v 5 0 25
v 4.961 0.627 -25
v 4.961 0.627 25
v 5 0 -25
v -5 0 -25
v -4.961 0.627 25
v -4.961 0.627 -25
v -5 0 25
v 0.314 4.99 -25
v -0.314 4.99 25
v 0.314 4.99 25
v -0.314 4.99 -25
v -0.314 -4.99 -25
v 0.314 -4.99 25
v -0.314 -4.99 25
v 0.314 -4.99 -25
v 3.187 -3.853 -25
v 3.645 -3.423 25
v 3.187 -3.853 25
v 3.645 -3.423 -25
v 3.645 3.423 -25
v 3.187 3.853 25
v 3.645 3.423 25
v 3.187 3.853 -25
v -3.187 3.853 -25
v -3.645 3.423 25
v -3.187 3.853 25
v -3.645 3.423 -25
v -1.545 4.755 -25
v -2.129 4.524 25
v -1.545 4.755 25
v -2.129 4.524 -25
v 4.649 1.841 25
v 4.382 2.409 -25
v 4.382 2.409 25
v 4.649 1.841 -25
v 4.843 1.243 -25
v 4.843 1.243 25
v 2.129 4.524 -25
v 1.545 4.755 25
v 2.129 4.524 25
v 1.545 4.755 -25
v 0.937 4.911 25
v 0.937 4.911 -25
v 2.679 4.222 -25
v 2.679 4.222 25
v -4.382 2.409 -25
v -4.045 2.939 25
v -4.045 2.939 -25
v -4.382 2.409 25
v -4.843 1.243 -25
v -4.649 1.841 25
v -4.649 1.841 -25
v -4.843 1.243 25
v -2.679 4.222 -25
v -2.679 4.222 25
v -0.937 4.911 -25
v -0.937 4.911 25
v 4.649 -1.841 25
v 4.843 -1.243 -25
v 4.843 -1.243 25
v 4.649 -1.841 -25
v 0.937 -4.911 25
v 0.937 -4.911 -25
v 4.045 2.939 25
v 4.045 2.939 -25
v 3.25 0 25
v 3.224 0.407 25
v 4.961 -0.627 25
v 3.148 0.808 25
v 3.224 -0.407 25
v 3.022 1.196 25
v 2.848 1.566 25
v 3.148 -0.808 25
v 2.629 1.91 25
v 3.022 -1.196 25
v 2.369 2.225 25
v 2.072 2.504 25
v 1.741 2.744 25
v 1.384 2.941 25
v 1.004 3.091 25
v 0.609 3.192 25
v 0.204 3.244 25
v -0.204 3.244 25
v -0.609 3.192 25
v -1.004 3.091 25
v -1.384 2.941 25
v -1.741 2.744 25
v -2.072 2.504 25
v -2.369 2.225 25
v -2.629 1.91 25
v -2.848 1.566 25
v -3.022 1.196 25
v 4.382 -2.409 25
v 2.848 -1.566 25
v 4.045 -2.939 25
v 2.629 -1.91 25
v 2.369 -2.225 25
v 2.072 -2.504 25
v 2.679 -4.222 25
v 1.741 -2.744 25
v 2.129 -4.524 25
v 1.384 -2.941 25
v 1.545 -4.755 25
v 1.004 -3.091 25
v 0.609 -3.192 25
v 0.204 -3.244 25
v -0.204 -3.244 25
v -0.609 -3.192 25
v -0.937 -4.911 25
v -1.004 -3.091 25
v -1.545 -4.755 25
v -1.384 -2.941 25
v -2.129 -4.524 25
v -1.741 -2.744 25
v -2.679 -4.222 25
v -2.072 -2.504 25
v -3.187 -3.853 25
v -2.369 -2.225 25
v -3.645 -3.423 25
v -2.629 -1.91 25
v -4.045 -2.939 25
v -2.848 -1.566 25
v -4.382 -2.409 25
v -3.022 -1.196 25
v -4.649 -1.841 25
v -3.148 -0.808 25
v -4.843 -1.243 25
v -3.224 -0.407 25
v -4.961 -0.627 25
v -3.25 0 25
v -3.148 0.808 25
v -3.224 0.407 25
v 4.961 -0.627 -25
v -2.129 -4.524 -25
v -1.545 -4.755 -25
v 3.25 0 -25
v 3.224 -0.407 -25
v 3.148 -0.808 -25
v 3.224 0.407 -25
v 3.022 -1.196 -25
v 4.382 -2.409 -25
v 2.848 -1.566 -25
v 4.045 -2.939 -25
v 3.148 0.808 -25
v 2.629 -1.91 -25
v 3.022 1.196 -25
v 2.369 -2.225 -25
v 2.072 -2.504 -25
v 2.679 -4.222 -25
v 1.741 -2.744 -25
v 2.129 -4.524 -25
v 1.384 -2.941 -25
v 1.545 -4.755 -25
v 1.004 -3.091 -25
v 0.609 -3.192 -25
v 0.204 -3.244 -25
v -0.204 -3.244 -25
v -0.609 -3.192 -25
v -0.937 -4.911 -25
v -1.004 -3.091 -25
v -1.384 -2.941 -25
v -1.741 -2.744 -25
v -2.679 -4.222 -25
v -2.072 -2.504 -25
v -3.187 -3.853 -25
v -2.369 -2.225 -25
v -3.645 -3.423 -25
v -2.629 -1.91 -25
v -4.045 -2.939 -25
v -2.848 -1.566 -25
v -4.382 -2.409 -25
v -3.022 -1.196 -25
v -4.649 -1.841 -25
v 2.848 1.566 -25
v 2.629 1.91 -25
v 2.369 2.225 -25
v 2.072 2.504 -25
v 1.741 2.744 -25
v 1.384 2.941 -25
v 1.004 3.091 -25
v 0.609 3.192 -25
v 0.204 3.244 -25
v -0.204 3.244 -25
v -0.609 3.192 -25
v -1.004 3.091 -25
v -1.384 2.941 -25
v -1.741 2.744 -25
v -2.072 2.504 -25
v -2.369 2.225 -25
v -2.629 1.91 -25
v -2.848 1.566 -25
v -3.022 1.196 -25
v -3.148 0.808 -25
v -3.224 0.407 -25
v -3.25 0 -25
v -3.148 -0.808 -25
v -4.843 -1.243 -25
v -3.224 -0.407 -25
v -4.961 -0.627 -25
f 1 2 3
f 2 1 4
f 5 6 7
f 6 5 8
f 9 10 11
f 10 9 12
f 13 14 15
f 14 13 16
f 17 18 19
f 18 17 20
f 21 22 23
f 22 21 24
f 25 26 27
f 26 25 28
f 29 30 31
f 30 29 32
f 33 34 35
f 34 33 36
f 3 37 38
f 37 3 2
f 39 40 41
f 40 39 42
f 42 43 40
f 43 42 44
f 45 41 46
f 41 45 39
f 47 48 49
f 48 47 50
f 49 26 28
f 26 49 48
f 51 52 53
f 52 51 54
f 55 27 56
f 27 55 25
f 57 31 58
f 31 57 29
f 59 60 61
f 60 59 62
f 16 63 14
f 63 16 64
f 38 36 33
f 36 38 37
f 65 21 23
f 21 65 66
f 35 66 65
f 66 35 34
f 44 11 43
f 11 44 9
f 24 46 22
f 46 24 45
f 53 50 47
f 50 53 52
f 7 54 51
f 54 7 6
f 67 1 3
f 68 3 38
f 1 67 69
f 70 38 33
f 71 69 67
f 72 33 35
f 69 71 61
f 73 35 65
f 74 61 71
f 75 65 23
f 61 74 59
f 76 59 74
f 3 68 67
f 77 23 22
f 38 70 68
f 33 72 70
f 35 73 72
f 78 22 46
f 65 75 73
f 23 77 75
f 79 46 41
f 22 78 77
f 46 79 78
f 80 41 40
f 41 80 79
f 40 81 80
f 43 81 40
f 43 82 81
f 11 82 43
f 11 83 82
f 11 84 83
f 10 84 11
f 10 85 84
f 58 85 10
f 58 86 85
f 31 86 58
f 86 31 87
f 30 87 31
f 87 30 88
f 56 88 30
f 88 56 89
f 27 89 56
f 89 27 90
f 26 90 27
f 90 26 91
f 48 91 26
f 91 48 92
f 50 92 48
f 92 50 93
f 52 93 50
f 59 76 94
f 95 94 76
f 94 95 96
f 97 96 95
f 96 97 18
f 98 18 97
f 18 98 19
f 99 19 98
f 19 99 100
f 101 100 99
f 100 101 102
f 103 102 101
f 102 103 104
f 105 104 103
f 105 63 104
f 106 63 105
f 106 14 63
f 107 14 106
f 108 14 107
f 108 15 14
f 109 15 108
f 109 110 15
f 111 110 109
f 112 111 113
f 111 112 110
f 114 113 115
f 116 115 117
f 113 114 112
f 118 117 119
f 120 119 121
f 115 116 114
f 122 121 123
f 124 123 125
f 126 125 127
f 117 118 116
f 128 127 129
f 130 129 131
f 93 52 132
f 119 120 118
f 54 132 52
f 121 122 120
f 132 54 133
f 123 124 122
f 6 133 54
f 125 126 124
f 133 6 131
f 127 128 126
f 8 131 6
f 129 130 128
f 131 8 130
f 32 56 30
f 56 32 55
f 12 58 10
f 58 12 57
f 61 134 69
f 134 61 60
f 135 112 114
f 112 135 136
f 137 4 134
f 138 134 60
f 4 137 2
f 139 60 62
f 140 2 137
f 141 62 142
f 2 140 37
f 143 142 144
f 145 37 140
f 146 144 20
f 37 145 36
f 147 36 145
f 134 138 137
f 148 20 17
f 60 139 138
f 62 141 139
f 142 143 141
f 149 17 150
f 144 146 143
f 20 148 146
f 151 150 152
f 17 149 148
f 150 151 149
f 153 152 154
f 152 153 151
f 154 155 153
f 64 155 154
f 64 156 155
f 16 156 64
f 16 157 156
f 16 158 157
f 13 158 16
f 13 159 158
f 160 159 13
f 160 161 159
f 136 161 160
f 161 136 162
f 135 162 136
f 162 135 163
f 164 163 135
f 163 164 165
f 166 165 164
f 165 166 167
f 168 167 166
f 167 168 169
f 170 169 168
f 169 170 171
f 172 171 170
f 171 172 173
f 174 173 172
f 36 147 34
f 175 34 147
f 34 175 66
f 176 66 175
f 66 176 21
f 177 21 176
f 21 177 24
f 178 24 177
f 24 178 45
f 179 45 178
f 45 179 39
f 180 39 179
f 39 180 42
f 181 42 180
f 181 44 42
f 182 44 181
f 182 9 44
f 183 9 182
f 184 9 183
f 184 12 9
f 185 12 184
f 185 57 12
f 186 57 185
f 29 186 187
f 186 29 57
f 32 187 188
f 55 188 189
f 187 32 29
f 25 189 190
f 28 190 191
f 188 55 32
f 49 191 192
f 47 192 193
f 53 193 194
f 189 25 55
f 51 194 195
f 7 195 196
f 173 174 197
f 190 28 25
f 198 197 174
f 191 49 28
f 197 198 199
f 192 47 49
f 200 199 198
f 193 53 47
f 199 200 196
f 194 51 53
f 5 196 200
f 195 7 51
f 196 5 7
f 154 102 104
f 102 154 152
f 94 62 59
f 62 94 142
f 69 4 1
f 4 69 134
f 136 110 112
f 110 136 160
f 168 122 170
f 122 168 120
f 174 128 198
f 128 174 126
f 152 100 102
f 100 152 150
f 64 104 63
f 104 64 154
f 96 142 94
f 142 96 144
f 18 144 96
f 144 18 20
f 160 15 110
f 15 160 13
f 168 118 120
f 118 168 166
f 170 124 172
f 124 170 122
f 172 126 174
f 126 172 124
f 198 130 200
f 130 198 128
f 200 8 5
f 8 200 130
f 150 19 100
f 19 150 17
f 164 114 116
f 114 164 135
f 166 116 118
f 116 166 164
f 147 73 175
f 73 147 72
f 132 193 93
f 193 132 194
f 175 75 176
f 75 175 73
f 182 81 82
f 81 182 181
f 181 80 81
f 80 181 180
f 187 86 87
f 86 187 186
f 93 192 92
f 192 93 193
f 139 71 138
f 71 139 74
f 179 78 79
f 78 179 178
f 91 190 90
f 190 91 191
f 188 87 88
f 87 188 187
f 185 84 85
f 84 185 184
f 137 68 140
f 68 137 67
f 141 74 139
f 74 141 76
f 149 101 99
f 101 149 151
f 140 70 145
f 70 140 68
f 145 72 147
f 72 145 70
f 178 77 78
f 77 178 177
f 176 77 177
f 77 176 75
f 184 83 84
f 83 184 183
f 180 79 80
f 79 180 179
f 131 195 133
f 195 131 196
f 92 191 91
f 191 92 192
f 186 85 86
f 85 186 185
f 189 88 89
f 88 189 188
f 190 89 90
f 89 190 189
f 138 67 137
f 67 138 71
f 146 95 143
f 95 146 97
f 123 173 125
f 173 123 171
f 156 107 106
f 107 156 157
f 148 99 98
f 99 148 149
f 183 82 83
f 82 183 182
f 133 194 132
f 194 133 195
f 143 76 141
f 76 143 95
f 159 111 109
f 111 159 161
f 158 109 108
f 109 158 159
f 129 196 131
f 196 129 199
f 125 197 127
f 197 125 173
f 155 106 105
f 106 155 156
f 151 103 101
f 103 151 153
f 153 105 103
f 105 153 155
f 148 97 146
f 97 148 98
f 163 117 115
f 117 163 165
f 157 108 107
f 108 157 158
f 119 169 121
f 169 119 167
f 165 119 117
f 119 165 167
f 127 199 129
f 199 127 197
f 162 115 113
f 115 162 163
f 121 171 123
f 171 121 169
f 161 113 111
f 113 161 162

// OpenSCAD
$fn = 50;


difference() {
	union() {
		translate(v = [0, 0, -25.0000000000]) {
			cylinder(h = 50, r = 5.0000000000);
		}
	}
	union() {
		translate(v = [0, 0, -100.0000000000]) {
			cylinder(h = 200, r = 3.2500000000);
		}
	}
}
